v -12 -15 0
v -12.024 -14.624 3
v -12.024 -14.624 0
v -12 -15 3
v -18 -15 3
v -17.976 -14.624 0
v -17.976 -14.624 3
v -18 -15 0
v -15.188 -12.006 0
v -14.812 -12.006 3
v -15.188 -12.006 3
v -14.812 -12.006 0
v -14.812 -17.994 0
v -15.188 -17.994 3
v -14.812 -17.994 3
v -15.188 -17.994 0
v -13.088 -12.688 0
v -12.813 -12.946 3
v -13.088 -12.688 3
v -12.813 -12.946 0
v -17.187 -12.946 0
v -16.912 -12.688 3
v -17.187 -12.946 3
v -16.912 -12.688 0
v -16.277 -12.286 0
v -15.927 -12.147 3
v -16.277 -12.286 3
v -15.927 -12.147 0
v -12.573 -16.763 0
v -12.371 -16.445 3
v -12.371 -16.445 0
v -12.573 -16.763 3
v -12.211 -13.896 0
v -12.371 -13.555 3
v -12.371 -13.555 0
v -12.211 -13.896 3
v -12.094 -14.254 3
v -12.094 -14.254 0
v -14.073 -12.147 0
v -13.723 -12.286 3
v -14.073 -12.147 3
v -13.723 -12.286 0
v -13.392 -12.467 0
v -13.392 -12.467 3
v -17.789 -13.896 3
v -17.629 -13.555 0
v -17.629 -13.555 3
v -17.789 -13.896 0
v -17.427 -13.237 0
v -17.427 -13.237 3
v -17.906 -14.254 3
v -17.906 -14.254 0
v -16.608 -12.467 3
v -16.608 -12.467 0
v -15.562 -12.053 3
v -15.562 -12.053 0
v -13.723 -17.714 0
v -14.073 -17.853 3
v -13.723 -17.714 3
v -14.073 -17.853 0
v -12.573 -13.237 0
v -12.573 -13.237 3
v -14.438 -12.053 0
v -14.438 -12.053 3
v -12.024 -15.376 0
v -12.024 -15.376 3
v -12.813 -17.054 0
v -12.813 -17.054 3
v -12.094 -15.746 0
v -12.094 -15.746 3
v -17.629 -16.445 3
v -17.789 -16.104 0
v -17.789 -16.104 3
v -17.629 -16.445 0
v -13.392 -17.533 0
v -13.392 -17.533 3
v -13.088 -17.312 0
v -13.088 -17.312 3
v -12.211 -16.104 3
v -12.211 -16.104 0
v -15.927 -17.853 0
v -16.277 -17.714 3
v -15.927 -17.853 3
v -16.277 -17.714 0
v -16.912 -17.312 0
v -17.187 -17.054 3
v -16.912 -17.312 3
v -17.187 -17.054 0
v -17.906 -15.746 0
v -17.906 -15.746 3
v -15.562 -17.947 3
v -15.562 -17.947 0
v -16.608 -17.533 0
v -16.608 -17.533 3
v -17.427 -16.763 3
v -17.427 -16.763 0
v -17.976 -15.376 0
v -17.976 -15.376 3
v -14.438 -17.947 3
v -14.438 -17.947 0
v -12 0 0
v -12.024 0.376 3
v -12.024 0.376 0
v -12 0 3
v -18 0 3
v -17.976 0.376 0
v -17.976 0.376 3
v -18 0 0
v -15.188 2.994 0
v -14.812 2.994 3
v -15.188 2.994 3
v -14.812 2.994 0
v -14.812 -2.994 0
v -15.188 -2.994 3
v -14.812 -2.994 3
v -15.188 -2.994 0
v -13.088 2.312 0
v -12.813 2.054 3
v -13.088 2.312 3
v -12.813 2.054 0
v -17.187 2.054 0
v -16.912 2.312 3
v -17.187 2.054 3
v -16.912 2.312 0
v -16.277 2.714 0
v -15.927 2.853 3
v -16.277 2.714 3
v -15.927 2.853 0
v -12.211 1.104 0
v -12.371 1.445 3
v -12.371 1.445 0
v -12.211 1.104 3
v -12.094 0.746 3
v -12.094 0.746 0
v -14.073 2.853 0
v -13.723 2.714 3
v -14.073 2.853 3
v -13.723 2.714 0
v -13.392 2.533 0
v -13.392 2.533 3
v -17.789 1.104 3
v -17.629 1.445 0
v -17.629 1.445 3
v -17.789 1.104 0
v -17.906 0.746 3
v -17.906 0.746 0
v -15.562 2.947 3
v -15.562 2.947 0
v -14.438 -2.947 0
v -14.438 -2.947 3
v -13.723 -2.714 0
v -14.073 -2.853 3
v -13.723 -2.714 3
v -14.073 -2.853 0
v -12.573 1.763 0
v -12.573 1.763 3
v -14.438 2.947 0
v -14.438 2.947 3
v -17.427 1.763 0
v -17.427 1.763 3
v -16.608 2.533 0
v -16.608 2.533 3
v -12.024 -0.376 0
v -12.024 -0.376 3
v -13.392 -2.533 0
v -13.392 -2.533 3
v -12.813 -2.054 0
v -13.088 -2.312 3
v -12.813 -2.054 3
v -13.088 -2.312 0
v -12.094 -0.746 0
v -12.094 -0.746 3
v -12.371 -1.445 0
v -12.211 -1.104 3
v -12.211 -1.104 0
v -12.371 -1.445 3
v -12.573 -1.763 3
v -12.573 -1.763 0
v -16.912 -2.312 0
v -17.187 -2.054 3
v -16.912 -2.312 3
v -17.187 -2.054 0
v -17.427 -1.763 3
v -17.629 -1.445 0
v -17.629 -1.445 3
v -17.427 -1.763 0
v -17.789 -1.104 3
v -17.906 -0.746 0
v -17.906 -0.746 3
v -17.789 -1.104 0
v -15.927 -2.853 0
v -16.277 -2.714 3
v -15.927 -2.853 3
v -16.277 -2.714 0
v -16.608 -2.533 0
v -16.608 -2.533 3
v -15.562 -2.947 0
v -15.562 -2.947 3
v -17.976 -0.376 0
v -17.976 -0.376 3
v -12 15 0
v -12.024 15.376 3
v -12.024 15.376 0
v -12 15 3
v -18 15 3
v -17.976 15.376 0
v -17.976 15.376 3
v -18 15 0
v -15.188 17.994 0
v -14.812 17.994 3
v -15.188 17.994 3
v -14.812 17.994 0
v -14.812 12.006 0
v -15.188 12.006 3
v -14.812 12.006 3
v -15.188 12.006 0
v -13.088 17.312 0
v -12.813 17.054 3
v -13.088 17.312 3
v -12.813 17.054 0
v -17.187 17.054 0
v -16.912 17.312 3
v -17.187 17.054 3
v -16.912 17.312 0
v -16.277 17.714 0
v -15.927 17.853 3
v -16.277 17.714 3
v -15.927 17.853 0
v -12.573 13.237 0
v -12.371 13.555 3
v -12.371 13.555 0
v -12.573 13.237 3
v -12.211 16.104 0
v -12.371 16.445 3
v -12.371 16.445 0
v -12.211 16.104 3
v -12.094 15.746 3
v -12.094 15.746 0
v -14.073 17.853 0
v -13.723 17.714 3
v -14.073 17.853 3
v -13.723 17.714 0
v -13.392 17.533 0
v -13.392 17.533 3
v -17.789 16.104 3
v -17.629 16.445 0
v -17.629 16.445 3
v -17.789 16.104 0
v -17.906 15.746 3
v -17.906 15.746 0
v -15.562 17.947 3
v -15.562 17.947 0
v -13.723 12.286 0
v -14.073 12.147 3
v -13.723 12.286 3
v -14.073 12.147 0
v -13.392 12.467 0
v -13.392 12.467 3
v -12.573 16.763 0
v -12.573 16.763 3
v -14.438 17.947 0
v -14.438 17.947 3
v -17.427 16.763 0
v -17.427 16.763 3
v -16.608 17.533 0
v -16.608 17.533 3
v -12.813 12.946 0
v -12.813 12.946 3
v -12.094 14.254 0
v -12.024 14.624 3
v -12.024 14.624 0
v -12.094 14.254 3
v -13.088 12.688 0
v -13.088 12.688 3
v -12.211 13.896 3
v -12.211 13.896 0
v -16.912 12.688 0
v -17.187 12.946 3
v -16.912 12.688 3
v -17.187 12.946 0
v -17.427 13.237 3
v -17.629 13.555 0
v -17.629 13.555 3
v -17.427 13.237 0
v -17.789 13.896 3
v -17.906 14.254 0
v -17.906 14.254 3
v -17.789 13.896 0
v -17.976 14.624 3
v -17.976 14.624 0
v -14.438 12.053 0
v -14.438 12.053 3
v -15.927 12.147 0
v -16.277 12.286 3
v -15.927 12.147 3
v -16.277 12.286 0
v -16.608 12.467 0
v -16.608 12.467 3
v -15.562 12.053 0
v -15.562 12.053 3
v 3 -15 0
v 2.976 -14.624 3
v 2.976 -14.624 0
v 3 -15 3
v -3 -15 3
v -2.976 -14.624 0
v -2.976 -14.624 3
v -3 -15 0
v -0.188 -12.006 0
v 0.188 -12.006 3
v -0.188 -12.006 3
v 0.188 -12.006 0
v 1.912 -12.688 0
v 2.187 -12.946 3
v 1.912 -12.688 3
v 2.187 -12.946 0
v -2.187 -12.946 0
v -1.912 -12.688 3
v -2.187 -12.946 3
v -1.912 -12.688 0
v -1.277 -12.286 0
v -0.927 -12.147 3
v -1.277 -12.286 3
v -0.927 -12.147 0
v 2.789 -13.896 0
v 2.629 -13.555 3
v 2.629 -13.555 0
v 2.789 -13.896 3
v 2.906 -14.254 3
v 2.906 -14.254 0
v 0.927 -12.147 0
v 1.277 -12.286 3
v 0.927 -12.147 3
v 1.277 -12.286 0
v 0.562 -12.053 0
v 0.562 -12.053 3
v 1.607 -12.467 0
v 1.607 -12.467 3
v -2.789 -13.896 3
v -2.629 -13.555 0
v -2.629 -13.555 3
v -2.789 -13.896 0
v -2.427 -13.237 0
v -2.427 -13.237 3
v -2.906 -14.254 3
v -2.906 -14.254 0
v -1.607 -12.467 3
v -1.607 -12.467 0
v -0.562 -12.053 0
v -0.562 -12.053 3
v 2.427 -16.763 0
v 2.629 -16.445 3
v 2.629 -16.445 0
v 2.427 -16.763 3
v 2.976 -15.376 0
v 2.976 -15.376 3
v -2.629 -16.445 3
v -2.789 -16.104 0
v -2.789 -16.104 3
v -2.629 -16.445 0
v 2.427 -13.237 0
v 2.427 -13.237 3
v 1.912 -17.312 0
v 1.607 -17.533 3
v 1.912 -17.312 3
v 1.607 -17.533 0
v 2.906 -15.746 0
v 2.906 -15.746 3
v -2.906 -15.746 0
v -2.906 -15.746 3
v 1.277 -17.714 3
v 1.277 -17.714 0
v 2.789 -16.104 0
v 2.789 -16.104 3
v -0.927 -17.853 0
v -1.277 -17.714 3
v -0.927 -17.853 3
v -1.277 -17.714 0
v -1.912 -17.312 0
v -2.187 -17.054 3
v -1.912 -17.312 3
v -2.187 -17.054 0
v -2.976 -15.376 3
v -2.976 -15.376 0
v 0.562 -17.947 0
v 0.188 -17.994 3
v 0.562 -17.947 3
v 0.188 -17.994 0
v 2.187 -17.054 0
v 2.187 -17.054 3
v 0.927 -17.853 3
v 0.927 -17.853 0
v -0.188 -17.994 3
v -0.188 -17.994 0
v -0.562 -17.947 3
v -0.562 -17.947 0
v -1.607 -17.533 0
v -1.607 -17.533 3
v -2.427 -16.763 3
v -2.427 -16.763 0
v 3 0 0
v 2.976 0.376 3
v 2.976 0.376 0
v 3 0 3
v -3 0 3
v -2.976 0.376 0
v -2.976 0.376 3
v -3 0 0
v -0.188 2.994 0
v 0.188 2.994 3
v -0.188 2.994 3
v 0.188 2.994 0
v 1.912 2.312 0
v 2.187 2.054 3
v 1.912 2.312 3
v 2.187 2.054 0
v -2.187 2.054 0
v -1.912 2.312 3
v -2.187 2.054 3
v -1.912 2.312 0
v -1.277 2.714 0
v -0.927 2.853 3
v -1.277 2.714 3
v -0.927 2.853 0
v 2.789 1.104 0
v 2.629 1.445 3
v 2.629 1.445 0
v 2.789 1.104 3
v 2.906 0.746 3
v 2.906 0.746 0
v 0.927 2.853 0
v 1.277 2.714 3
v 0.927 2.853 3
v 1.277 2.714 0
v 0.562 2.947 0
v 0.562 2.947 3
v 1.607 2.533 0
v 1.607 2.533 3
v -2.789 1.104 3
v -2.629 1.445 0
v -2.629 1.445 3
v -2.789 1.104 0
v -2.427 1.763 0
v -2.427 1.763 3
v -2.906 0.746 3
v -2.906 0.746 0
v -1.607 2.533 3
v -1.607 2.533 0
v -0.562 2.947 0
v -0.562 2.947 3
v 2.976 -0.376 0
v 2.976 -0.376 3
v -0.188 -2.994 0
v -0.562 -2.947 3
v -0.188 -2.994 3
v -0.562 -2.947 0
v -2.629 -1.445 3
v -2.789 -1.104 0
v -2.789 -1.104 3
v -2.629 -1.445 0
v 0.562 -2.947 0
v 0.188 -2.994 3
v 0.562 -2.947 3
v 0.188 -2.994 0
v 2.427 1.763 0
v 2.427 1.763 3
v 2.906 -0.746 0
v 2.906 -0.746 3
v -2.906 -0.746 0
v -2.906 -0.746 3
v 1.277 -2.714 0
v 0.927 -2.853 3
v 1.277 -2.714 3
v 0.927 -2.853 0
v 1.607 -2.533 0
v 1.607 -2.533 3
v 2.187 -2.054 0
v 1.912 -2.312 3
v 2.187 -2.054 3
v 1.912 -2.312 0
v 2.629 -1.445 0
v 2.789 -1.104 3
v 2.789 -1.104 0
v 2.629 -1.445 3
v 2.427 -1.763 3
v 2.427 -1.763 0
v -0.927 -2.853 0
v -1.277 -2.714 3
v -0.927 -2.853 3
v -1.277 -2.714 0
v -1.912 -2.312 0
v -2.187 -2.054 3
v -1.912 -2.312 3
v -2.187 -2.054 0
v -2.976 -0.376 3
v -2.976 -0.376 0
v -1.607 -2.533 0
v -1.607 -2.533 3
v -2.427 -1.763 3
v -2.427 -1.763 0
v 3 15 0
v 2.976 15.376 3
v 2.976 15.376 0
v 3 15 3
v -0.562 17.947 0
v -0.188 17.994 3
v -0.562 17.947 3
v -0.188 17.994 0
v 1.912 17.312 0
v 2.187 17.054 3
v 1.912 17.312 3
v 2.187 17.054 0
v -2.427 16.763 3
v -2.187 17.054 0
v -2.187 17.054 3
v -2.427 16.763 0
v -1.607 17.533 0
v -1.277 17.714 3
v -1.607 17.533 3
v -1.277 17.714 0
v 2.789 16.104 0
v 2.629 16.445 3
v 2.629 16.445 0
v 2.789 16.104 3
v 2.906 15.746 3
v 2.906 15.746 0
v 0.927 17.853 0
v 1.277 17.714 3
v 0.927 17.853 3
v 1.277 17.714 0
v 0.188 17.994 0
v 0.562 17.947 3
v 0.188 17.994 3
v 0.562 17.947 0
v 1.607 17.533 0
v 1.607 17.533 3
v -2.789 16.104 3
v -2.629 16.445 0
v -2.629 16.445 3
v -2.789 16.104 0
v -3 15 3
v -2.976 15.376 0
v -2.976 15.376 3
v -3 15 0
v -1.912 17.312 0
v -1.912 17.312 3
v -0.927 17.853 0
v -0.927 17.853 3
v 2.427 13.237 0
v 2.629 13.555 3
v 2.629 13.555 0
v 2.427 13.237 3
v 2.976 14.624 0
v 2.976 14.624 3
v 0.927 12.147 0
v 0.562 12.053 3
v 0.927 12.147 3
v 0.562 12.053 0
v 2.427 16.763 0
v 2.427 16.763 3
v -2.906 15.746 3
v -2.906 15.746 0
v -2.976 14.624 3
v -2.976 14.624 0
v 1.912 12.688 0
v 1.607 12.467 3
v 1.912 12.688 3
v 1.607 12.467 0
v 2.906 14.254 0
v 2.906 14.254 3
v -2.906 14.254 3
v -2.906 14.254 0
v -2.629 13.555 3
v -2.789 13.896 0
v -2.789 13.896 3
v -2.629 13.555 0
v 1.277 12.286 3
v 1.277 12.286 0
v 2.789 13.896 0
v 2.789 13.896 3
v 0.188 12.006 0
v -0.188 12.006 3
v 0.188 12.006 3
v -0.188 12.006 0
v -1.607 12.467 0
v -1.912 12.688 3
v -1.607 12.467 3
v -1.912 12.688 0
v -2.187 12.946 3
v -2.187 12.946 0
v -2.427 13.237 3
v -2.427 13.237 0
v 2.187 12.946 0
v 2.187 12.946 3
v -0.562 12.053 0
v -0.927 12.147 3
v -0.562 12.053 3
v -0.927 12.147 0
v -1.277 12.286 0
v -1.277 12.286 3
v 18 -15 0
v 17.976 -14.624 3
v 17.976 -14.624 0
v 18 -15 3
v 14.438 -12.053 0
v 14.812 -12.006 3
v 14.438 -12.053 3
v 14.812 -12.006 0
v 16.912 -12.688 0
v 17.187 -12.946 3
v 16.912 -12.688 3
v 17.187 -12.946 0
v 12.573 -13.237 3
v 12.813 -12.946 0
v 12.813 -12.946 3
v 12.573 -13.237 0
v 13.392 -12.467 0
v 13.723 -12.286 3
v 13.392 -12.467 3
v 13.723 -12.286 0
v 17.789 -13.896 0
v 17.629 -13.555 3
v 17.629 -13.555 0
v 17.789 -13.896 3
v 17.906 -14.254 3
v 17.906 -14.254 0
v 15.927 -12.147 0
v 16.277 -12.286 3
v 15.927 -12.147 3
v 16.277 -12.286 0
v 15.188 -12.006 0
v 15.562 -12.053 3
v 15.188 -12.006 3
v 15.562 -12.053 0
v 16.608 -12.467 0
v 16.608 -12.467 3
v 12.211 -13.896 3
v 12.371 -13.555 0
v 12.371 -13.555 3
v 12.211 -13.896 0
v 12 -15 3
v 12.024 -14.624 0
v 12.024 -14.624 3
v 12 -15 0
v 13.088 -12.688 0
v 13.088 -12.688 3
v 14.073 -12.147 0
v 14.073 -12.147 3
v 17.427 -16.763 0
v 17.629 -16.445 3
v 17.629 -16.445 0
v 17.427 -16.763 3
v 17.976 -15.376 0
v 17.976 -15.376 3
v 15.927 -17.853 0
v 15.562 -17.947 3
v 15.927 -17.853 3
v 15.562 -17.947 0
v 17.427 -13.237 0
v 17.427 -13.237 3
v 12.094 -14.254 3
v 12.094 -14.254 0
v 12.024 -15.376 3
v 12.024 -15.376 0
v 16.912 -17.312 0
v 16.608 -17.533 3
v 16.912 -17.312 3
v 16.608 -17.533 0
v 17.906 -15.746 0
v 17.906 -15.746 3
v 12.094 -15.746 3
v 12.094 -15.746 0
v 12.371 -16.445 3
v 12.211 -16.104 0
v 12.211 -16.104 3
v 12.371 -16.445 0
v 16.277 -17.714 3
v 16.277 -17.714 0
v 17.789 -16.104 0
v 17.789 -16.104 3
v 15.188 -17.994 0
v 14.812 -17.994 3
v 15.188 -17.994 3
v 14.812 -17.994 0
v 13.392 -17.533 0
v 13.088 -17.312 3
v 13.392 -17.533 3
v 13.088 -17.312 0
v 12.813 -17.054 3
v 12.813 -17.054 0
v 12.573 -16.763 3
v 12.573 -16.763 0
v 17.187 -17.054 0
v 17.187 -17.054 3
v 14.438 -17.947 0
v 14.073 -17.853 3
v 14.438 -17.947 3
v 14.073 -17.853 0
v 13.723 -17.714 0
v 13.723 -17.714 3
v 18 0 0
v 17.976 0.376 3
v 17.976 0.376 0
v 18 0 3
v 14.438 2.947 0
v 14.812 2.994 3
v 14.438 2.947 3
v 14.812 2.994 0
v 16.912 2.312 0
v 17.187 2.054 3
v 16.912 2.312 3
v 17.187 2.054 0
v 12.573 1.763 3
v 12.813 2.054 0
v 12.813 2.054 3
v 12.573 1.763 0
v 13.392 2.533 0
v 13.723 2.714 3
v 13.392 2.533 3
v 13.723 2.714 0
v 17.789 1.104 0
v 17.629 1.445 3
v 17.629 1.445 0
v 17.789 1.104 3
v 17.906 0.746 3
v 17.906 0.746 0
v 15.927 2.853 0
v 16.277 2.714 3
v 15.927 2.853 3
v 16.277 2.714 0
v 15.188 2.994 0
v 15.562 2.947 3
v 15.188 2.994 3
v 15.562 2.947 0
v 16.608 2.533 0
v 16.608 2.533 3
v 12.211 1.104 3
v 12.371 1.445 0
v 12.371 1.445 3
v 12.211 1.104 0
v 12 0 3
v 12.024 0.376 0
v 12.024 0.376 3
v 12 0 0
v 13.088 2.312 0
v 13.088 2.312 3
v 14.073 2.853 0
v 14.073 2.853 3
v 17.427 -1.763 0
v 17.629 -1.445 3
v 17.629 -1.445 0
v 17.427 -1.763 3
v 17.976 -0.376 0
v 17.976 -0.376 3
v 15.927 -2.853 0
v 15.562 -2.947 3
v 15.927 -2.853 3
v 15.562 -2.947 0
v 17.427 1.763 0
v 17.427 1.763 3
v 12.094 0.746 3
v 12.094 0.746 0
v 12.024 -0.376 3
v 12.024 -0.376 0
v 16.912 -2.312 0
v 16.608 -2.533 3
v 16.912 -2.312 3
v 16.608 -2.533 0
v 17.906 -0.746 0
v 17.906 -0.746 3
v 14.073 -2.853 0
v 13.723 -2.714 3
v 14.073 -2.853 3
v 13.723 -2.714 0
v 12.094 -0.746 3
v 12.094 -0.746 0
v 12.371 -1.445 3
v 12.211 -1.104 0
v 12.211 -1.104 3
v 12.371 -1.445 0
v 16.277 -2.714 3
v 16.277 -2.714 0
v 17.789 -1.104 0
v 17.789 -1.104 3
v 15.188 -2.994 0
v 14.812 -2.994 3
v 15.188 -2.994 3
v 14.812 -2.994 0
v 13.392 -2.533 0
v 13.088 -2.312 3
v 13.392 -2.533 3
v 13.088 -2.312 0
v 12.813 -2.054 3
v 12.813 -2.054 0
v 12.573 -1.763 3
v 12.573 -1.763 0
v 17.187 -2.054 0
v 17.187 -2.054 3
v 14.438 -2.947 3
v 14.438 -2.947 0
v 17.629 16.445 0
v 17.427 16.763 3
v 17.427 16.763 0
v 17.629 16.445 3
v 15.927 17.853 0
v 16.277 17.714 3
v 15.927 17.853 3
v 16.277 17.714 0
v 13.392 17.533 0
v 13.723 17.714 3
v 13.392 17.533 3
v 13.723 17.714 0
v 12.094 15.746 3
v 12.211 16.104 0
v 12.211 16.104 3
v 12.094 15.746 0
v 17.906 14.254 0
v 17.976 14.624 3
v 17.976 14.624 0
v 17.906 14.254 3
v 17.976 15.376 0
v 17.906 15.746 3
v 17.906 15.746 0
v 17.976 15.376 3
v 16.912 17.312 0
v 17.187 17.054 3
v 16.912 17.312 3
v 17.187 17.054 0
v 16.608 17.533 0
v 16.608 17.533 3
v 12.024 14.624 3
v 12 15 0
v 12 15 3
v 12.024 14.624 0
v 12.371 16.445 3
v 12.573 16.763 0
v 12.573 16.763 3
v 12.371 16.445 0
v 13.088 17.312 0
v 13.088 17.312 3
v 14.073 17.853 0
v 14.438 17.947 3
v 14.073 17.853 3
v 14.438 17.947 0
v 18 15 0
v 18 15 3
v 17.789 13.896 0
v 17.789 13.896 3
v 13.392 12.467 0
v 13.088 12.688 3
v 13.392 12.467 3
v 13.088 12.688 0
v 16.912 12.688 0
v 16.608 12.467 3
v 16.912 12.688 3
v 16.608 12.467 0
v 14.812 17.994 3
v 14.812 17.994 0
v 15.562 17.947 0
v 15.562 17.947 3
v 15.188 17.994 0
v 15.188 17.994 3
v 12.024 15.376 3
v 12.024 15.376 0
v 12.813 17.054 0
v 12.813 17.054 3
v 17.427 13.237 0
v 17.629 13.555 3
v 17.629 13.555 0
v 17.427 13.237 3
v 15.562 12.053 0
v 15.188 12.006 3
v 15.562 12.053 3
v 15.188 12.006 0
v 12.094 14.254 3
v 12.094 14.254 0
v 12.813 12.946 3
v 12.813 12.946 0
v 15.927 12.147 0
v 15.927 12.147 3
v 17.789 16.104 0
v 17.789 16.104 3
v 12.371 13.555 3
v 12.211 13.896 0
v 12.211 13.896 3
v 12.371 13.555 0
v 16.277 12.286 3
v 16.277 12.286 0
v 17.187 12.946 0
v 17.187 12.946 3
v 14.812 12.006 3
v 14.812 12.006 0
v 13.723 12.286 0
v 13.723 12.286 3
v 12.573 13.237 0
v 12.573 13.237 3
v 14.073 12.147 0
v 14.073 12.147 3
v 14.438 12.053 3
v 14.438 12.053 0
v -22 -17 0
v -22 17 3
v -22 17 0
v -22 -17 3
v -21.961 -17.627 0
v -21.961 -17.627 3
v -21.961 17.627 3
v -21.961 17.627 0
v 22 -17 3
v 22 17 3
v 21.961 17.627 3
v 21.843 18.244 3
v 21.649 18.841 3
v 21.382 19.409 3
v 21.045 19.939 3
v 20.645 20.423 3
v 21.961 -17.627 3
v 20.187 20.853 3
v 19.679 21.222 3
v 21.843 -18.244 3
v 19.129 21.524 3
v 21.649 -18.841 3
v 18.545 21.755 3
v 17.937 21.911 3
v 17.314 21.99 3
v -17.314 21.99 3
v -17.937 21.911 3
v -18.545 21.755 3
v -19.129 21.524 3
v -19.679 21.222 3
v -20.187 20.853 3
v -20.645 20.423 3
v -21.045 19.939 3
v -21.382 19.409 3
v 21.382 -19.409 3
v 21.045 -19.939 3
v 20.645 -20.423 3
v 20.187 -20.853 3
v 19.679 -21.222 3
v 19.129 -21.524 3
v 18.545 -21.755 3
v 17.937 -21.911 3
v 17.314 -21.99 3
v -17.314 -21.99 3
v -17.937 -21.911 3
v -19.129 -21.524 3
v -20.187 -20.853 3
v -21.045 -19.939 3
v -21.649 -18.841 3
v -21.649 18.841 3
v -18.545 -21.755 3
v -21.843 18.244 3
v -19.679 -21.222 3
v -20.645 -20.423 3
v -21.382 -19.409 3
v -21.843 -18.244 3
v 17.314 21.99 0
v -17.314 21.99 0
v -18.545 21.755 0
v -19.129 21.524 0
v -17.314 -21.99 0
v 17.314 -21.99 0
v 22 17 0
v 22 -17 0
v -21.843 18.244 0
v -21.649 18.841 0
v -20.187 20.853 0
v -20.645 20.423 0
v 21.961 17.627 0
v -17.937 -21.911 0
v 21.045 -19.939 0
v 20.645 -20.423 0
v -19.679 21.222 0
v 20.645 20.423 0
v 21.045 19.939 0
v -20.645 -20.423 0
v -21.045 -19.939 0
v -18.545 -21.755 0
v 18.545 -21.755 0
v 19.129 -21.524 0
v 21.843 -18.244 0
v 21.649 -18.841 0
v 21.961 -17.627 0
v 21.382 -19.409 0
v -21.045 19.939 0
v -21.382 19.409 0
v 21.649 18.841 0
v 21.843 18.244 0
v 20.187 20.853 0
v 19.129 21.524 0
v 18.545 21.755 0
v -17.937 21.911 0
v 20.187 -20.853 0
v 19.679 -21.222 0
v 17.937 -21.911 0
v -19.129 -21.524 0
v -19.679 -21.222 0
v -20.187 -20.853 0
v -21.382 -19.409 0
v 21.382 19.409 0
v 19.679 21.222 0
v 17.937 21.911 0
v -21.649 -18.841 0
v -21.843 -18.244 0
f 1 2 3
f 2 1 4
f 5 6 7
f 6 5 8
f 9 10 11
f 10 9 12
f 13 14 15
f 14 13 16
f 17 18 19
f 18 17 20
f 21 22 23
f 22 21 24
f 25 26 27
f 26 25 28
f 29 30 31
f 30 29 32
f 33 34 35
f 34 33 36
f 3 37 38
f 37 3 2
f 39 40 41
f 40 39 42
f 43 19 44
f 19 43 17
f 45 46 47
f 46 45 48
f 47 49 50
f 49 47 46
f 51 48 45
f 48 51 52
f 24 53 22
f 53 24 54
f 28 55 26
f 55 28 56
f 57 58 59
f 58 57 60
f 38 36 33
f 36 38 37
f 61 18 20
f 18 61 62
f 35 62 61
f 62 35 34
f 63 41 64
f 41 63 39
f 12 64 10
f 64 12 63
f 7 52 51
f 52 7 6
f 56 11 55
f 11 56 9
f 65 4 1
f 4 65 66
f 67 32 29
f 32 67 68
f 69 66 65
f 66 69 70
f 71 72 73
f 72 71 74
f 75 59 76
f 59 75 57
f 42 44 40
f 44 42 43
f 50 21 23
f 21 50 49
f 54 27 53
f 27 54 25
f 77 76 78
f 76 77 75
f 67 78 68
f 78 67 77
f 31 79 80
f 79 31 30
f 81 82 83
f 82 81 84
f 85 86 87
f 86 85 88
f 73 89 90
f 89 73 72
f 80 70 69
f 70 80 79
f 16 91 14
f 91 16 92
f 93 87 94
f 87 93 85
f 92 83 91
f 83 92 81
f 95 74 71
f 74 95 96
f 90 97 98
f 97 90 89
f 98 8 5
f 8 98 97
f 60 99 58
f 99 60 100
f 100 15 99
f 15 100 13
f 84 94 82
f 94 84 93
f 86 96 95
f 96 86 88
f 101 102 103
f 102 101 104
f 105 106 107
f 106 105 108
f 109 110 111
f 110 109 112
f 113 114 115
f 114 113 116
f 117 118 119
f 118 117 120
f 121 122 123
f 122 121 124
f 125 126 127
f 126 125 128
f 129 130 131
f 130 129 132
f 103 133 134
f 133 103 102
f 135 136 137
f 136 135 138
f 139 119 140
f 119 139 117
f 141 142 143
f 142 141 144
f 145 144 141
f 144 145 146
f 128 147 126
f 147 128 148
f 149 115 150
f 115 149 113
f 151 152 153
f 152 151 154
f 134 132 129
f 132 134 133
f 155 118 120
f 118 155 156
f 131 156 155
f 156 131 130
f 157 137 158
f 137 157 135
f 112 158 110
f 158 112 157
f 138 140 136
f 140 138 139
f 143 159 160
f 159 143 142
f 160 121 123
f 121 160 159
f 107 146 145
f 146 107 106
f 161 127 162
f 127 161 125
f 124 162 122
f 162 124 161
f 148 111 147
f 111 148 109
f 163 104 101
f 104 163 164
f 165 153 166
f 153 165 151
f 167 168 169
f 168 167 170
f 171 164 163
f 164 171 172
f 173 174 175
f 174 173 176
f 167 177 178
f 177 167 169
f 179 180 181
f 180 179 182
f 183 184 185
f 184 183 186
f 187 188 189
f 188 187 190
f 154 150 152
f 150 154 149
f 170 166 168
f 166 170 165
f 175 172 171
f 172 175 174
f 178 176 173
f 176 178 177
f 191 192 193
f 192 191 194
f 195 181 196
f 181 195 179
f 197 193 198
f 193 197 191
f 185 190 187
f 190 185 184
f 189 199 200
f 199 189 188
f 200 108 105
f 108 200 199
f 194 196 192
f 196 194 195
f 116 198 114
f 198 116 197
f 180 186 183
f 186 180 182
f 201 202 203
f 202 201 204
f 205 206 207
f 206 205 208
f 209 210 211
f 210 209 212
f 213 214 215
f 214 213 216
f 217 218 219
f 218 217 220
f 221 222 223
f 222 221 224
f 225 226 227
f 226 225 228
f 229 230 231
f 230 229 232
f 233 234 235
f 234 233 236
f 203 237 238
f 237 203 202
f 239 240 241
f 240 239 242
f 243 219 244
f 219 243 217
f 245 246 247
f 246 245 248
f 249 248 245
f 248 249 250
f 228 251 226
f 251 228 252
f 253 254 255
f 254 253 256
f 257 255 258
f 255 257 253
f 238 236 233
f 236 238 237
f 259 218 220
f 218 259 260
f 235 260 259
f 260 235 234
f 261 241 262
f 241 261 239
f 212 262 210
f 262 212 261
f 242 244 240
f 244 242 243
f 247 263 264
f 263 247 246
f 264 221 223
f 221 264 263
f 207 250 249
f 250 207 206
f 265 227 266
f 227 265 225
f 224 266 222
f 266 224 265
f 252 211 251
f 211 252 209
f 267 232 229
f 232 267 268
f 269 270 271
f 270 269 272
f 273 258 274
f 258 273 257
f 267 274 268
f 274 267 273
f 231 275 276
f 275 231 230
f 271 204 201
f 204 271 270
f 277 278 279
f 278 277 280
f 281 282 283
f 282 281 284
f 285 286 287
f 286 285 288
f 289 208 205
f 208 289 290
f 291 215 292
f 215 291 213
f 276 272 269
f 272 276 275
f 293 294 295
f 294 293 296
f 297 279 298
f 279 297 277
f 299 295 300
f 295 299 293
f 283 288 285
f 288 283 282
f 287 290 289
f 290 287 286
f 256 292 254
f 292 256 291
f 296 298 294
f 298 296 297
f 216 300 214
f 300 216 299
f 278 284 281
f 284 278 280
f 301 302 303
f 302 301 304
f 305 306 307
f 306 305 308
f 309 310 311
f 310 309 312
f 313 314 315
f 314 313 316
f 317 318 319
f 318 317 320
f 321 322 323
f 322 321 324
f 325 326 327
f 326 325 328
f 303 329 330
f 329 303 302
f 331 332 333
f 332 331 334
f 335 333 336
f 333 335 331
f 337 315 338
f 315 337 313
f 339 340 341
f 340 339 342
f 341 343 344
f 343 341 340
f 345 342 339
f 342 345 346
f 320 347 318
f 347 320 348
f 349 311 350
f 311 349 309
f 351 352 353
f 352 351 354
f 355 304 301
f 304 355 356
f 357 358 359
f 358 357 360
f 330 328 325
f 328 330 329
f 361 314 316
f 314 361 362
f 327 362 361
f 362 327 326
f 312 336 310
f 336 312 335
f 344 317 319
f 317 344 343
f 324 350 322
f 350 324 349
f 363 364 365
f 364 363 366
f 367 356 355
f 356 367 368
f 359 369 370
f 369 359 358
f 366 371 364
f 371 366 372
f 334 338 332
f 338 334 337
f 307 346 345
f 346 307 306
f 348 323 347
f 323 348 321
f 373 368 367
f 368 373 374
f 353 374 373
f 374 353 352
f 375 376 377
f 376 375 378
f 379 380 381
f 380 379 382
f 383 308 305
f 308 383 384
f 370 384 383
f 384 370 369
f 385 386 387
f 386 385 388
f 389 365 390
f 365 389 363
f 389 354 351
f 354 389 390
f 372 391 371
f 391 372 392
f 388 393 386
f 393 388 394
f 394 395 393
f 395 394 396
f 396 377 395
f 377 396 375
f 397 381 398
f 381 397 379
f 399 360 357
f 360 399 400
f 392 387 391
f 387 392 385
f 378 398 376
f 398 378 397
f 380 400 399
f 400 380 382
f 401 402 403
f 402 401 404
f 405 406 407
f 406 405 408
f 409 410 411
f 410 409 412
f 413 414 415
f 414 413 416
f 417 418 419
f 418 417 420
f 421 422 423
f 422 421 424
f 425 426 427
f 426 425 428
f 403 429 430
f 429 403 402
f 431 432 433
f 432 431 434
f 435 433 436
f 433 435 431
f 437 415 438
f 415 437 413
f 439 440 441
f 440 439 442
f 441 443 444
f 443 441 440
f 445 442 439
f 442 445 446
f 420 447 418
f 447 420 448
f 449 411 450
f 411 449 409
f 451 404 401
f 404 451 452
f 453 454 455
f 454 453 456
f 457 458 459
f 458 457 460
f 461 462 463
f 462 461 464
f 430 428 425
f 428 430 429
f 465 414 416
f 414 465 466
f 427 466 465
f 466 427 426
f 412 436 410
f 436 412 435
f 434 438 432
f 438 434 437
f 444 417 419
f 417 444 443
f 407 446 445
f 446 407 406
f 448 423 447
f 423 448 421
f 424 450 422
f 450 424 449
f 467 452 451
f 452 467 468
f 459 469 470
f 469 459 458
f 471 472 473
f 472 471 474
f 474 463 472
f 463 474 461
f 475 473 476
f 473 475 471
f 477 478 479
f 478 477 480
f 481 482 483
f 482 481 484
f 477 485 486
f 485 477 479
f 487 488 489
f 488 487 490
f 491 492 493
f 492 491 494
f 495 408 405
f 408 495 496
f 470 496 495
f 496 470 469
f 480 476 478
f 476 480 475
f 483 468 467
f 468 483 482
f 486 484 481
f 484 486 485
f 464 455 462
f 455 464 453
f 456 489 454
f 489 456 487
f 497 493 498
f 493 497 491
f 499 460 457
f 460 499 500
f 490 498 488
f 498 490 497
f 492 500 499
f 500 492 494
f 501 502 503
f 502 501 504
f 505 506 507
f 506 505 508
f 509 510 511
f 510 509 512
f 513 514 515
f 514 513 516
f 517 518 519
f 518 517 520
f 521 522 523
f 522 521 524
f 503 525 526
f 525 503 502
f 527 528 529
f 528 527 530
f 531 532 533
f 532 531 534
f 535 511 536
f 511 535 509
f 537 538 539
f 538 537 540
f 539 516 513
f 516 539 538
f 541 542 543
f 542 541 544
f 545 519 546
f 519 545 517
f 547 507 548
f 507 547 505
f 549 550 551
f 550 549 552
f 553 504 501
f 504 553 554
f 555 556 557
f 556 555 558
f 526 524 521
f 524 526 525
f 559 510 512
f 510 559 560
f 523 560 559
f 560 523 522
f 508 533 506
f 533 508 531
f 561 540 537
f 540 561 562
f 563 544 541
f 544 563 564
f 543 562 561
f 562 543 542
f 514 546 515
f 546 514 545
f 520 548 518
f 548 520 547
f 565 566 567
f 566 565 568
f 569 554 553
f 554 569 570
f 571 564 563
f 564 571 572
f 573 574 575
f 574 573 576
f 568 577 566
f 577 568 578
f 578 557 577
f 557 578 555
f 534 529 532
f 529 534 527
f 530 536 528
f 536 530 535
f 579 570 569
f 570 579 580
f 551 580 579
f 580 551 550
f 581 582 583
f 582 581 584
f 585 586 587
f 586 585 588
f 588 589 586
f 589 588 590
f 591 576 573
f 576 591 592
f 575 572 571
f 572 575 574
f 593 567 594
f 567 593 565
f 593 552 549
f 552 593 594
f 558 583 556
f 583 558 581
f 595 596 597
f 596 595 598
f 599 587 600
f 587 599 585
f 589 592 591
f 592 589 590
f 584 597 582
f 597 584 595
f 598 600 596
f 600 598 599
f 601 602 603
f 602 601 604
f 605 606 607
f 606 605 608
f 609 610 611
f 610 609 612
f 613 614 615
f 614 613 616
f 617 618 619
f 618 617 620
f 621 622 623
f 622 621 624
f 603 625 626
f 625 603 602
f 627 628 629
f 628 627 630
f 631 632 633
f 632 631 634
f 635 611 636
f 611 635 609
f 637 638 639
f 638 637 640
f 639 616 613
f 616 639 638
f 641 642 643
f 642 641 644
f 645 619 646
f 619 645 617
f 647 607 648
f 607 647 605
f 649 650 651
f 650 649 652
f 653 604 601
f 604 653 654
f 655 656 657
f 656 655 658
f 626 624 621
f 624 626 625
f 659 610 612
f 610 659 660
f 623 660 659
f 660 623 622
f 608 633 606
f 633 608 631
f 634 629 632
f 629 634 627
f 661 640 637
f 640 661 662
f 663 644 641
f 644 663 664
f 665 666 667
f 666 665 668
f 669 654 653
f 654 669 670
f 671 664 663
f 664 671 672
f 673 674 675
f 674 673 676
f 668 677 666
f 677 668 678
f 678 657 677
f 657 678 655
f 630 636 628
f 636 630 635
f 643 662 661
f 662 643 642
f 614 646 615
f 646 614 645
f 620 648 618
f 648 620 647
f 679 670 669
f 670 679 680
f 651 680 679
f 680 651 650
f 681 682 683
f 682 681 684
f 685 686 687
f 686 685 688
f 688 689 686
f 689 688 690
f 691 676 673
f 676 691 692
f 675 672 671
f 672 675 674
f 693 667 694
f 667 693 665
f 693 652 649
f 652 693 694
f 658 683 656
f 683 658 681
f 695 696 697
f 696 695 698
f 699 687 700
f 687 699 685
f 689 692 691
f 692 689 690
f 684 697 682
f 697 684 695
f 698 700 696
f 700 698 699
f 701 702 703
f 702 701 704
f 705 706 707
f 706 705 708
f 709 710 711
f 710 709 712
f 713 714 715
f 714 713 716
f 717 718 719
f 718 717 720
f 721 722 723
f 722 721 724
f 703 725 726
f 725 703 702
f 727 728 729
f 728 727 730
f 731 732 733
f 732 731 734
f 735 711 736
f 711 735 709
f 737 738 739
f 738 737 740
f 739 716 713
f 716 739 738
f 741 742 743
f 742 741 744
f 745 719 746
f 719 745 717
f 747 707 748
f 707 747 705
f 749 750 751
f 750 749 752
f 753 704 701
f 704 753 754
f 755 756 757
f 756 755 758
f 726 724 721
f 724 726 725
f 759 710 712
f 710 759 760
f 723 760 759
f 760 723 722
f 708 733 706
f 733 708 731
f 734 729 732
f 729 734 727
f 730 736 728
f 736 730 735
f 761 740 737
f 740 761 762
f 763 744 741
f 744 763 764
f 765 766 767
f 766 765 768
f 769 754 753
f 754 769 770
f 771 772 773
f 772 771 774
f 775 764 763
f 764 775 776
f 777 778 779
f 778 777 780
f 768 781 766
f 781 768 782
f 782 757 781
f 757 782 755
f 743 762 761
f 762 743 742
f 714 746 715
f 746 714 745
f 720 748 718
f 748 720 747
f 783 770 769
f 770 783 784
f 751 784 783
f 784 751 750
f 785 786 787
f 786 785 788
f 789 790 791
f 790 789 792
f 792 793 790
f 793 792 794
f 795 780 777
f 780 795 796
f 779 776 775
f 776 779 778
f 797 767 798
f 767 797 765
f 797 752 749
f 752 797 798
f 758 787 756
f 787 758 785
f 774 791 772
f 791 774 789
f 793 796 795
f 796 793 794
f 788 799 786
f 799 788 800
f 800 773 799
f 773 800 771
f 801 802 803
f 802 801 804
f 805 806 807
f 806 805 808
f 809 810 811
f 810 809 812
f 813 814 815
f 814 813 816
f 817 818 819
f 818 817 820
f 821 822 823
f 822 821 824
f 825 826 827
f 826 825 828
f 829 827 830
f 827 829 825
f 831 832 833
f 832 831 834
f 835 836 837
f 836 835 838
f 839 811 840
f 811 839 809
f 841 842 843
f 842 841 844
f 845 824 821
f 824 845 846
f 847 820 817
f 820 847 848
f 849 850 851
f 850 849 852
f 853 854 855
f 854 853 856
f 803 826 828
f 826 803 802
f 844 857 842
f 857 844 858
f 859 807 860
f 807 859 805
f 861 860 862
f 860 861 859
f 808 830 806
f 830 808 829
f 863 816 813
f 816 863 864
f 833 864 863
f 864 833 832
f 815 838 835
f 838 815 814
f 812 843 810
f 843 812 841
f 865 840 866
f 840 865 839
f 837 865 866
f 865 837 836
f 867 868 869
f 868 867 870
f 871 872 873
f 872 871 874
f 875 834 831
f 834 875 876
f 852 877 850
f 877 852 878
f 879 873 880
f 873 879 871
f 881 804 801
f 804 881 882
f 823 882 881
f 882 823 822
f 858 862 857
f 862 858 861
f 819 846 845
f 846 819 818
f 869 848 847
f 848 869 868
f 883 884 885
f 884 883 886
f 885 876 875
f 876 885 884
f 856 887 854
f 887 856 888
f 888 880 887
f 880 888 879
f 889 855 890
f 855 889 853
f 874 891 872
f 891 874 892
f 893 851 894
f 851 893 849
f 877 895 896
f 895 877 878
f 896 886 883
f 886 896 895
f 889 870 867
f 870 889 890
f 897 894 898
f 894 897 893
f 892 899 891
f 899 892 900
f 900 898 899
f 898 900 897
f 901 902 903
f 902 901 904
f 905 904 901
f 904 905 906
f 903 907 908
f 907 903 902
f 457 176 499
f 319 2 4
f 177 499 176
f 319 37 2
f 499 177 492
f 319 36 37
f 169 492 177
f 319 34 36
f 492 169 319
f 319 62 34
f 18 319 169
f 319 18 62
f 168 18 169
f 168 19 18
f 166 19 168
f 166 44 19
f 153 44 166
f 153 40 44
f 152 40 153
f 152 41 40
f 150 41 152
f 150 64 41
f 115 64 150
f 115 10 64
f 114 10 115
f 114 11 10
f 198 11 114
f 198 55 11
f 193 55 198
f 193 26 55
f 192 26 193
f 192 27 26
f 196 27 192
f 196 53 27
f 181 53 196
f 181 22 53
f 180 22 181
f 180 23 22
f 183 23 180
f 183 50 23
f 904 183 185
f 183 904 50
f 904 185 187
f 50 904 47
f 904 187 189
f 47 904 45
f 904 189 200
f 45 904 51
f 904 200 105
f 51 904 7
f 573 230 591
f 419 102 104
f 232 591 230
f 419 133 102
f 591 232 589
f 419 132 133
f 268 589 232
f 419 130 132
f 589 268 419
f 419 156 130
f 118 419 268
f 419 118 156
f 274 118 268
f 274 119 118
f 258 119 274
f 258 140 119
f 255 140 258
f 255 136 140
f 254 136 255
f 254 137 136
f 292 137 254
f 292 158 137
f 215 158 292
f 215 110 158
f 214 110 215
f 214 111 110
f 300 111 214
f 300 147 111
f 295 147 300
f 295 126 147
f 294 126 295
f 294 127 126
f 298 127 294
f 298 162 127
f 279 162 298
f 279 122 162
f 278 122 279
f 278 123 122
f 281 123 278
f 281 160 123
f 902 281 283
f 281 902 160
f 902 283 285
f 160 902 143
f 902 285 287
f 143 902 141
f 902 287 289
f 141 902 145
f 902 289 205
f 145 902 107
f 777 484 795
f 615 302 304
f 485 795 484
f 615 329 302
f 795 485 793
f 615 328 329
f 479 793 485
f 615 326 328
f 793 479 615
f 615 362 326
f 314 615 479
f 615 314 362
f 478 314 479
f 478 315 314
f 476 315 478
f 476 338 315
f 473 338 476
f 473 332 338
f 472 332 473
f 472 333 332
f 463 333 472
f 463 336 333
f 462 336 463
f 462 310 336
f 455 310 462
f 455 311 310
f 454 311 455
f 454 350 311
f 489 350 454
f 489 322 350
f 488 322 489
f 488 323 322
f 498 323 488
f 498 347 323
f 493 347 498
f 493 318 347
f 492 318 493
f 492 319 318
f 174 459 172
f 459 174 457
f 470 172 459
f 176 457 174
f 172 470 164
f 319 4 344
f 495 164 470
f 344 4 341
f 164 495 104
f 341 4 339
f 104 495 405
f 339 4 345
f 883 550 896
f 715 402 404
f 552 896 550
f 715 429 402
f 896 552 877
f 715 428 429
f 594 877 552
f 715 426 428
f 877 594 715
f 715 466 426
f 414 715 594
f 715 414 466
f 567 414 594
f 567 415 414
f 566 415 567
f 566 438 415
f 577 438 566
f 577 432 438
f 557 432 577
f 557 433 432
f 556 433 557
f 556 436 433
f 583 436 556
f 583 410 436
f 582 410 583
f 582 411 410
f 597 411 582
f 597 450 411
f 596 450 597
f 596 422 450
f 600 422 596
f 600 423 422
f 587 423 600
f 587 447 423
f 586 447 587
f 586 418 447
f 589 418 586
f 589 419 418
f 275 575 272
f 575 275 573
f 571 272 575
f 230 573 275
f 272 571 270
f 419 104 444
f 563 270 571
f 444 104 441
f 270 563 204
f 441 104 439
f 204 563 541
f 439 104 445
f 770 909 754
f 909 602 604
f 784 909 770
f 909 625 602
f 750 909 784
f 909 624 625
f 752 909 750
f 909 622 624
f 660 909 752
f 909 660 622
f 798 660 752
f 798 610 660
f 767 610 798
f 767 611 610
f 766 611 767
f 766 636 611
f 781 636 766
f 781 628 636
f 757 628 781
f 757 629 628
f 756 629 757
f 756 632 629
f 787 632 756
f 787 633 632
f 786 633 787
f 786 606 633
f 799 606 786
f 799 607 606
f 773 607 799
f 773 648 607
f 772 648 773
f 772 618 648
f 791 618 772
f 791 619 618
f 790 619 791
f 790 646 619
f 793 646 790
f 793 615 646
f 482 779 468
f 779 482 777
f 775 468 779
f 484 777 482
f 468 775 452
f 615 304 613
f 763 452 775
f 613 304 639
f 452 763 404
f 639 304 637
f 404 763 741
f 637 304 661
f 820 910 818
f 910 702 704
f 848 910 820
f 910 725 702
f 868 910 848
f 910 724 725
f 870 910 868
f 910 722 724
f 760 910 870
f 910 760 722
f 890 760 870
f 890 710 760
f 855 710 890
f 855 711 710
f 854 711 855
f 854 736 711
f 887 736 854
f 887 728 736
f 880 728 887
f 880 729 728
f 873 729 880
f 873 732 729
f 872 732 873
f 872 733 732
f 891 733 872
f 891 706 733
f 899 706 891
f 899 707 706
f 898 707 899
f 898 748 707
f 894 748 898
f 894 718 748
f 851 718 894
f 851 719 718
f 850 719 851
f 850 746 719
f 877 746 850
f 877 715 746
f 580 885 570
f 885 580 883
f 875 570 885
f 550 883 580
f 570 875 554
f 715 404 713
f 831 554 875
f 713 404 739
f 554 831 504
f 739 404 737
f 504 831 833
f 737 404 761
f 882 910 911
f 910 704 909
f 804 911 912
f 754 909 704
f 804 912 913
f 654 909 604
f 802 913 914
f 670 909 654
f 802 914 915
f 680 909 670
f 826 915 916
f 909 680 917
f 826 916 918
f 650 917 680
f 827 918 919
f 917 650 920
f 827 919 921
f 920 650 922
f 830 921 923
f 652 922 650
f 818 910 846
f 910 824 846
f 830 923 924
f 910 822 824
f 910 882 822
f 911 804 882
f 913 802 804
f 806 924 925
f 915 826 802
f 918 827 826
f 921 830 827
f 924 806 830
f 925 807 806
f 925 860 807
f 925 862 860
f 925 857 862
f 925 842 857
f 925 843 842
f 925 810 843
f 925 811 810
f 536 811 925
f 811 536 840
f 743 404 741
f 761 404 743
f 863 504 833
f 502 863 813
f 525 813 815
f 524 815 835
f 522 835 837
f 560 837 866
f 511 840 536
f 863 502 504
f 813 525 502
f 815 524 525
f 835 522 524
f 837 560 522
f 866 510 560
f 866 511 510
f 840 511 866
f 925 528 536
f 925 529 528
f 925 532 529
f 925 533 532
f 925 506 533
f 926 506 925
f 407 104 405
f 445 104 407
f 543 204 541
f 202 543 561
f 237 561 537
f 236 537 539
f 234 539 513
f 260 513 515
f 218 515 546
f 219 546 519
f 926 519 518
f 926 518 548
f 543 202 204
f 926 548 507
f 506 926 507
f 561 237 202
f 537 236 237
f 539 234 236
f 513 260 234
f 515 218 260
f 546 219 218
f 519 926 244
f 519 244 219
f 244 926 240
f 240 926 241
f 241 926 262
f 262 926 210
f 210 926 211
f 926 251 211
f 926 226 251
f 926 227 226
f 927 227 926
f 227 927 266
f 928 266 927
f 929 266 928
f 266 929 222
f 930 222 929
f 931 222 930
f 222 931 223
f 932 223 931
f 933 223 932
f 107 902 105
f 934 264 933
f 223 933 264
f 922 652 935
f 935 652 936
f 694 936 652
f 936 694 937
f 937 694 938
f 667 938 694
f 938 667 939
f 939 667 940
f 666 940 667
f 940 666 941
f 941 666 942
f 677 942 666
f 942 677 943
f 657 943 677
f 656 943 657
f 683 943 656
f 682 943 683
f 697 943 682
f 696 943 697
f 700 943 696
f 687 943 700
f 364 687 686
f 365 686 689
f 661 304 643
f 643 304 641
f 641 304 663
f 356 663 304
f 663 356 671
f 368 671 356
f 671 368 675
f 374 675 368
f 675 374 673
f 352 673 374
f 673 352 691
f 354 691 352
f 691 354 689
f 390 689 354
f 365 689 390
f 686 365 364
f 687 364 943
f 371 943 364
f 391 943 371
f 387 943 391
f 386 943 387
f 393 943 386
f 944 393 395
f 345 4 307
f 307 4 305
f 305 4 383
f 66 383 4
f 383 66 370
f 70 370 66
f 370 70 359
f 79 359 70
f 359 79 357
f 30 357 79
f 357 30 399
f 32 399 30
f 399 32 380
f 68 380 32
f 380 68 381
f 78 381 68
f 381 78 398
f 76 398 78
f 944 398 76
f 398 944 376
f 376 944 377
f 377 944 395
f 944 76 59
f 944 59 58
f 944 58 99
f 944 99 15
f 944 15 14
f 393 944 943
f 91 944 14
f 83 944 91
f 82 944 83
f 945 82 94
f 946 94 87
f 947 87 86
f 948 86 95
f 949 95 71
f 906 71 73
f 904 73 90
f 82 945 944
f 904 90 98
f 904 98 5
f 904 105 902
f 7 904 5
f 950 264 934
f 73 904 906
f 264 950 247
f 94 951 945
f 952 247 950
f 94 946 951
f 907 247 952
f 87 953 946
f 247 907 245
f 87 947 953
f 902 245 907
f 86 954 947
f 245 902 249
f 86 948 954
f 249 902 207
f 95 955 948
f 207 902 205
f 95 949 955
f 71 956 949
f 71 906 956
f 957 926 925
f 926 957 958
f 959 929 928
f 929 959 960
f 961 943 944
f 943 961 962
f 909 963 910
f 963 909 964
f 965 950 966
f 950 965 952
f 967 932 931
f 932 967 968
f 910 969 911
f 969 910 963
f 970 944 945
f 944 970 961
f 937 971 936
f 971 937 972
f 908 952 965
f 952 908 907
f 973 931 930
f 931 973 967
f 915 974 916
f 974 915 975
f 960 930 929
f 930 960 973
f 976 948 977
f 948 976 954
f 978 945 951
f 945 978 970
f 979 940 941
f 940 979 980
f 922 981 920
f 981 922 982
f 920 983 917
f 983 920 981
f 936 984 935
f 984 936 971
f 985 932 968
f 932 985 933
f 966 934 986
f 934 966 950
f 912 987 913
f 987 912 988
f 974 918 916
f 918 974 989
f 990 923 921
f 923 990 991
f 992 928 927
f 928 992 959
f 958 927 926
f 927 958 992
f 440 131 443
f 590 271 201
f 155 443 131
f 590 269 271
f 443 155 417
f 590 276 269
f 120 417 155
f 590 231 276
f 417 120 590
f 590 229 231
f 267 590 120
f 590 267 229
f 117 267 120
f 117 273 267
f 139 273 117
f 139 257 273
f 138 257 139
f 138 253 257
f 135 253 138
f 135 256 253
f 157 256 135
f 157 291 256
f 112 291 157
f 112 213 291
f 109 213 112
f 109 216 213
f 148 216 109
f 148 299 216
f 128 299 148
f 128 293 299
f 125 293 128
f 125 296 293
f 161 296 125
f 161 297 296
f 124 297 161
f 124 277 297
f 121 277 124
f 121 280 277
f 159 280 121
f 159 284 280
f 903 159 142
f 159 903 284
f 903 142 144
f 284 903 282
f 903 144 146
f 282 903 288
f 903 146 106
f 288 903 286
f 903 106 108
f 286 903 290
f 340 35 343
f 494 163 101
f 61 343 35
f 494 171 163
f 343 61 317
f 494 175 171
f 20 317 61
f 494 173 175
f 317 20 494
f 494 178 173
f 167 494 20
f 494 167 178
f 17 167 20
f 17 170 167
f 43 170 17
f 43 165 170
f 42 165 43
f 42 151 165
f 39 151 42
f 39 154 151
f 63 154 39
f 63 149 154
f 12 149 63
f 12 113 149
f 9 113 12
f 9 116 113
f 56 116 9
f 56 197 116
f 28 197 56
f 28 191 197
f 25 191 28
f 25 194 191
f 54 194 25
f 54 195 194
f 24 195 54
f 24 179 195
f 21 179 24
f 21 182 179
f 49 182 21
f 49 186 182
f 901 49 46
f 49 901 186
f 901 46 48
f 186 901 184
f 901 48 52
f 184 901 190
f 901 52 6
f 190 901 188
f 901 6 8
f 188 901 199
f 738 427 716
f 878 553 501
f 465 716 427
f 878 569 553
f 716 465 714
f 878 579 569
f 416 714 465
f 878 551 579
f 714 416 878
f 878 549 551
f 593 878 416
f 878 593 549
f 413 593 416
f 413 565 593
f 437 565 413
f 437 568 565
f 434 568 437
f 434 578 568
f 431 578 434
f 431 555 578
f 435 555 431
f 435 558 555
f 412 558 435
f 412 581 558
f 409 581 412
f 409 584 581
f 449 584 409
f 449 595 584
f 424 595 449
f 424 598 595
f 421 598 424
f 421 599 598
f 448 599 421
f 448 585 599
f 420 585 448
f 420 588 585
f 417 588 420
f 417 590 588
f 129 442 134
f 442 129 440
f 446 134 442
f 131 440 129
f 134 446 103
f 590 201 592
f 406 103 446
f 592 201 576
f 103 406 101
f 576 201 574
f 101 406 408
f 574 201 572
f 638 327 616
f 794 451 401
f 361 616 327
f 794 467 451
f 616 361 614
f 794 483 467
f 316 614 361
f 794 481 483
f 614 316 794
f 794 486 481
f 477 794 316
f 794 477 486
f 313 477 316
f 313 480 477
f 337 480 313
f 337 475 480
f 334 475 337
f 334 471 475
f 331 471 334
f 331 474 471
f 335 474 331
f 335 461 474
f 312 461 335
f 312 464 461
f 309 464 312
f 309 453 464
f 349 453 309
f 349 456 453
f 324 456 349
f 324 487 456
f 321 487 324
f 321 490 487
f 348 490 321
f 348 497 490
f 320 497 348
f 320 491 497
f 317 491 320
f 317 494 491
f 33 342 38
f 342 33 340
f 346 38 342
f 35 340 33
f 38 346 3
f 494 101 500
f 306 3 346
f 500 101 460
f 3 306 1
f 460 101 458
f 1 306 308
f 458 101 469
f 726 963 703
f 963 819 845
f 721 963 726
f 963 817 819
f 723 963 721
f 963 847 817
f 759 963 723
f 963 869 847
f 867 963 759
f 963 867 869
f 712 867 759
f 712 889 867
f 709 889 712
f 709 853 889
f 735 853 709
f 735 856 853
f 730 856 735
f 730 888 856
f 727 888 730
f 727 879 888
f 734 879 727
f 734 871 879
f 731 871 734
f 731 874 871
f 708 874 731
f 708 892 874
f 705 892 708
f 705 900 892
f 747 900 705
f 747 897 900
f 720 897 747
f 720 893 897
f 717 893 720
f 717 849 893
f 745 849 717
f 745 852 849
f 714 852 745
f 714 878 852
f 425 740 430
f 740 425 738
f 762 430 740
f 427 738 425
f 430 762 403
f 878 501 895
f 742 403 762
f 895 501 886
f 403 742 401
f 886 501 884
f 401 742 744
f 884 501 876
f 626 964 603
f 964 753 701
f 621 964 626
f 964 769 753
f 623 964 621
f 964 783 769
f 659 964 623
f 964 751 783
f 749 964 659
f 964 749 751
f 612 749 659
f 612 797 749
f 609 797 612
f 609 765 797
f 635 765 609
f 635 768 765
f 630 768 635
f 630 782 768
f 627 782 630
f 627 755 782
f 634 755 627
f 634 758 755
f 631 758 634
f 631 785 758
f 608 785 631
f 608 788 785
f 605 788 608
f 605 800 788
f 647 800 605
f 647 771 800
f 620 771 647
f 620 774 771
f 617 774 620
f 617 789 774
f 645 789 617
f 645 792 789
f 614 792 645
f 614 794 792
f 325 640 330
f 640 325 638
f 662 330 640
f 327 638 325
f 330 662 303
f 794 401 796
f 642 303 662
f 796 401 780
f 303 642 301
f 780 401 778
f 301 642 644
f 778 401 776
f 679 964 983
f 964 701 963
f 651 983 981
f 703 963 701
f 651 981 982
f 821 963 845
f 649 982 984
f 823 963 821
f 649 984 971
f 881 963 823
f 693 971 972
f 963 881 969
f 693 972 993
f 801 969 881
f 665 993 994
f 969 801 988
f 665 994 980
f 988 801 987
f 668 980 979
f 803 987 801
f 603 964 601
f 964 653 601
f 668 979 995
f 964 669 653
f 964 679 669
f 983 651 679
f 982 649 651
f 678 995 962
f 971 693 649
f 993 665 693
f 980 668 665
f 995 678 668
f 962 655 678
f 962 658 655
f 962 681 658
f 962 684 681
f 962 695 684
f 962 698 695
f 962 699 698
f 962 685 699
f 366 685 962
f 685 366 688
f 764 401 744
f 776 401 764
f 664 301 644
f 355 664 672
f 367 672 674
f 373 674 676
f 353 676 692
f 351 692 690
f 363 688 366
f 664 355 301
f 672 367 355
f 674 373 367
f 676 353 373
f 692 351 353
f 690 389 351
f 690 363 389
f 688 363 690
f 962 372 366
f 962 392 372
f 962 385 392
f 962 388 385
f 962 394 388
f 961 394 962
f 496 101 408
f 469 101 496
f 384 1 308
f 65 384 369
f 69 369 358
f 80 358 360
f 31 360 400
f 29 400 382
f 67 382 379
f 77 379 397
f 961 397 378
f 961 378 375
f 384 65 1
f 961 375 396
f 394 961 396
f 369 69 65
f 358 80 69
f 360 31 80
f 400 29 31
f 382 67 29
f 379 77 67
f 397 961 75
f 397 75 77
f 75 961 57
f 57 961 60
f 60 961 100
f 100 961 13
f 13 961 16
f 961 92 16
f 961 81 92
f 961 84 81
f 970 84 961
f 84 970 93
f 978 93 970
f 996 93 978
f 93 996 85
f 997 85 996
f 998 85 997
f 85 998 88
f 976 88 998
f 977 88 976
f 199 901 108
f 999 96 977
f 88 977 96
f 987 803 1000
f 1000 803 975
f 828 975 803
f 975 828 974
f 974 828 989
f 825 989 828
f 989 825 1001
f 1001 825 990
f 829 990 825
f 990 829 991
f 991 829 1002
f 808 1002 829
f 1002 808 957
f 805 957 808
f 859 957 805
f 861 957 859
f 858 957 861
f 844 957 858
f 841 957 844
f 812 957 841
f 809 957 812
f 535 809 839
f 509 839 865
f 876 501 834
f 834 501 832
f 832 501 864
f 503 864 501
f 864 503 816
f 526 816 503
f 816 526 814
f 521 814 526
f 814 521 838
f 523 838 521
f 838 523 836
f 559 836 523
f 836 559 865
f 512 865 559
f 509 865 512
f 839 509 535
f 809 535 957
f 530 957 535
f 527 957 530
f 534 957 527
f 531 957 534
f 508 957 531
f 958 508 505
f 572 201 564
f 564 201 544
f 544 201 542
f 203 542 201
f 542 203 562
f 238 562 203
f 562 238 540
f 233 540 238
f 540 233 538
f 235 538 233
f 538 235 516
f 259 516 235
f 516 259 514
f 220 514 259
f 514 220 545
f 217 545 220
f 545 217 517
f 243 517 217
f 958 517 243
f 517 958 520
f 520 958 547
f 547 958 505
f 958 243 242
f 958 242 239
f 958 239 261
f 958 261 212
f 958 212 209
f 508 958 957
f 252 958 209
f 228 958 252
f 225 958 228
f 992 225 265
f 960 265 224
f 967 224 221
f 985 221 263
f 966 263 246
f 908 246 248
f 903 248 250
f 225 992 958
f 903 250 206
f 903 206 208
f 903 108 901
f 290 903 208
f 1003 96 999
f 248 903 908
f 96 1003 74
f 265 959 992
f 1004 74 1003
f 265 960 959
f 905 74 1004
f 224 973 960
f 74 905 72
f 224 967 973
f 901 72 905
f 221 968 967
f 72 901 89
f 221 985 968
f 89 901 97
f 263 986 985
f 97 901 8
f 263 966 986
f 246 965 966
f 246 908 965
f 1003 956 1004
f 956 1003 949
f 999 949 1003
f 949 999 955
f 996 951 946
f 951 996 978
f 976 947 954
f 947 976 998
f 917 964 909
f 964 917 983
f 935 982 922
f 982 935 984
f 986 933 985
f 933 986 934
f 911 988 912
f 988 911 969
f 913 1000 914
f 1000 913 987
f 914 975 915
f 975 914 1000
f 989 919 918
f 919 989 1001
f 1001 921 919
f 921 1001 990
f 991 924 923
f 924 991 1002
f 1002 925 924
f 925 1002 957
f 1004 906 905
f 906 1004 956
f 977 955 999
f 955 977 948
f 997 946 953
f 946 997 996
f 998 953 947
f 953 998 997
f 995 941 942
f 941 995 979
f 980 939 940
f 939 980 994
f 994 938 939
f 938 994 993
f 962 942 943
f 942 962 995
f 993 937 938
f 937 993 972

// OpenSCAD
$fn = 50;


difference() {
	union() {
		translate(v = [0, 0, 0]) {
			rotate(a = [0, 0, 0]) {
				hull() {
					translate(v = [-17.0000000000, 17.0000000000, 0]) {
						rotate(a = [0, 0, 0]) {
							translate(v = [0, 0, 0]) {
								rotate(a = [0, 0, 0]) {
									cylinder(h = 3, r = 5);
								}
							}
						}
					}
					translate(v = [17.0000000000, 17.0000000000, 0]) {
						rotate(a = [0, 0, 0]) {
							translate(v = [0, 0, 0]) {
								rotate(a = [0, 0, 0]) {
									cylinder(h = 3, r = 5);
								}
							}
						}
					}
					translate(v = [-17.0000000000, -17.0000000000, 0]) {
						rotate(a = [0, 0, 0]) {
							translate(v = [0, 0, 0]) {
								rotate(a = [0, 0, 0]) {
									cylinder(h = 3, r = 5);
								}
							}
						}
					}
					translate(v = [17.0000000000, -17.0000000000, 0]) {
						rotate(a = [0, 0, 0]) {
							translate(v = [0, 0, 0]) {
								rotate(a = [0, 0, 0]) {
									cylinder(h = 3, r = 5);
								}
							}
						}
					}
				}
			}
		}
	}
	union() {
		translate(v = [-15.0000000000, -15.0000000000, 0]) {
			rotate(a = [0, 0, 0]) {
				translate(v = [0, 0, -50]) {
					rotate(a = [0, 0, 0]) {
						cylinder(h = 100, r = 3.0000000000);
					}
				}
			}
		}
		translate(v = [-15.0000000000, 0.0000000000, 0]) {
			rotate(a = [0, 0, 0]) {
				translate(v = [0, 0, -50]) {
					rotate(a = [0, 0, 0]) {
						cylinder(h = 100, r = 3.0000000000);
					}
				}
			}
		}
		translate(v = [-15.0000000000, 15.0000000000, 0]) {
			rotate(a = [0, 0, 0]) {
				translate(v = [0, 0, -50]) {
					rotate(a = [0, 0, 0]) {
						cylinder(h = 100, r = 3.0000000000);
					}
				}
			}
		}
		translate(v = [0.0000000000, -15.0000000000, 0]) {
			rotate(a = [0, 0, 0]) {
				translate(v = [0, 0, -50]) {
					rotate(a = [0, 0, 0]) {
						cylinder(h = 100, r = 3.0000000000);
					}
				}
			}
		}
		translate(v = [0.0000000000, 0.0000000000, 0]) {
			rotate(a = [0, 0, 0]) {
				translate(v = [0, 0, -50]) {
					rotate(a = [0, 0, 0]) {
						cylinder(h = 100, r = 3.0000000000);
					}
				}
			}
		}
		translate(v = [0.0000000000, 15.0000000000, 0]) {
			rotate(a = [0, 0, 0]) {
				translate(v = [0, 0, -50]) {
					rotate(a = [0, 0, 0]) {
						cylinder(h = 100, r = 3.0000000000);
					}
				}
			}
		}
		translate(v = [15.0000000000, -15.0000000000, 0]) {
			rotate(a = [0, 0, 0]) {
				translate(v = [0, 0, -50]) {
					rotate(a = [0, 0, 0]) {
						cylinder(h = 100, r = 3.0000000000);
					}
				}
			}
		}
		translate(v = [15.0000000000, 0.0000000000, 0]) {
			rotate(a = [0, 0, 0]) {
				translate(v = [0, 0, -50]) {
					rotate(a = [0, 0, 0]) {
						cylinder(h = 100, r = 3.0000000000);
					}
				}
			}
		}
		translate(v = [15.0000000000, 15.0000000000, 0]) {
			rotate(a = [0, 0, 0]) {
				translate(v = [0, 0, -50]) {
					rotate(a = [0, 0, 0]) {
						cylinder(h = 100, r = 3.0000000000);
					}
				}
			}
		}
	}
}
